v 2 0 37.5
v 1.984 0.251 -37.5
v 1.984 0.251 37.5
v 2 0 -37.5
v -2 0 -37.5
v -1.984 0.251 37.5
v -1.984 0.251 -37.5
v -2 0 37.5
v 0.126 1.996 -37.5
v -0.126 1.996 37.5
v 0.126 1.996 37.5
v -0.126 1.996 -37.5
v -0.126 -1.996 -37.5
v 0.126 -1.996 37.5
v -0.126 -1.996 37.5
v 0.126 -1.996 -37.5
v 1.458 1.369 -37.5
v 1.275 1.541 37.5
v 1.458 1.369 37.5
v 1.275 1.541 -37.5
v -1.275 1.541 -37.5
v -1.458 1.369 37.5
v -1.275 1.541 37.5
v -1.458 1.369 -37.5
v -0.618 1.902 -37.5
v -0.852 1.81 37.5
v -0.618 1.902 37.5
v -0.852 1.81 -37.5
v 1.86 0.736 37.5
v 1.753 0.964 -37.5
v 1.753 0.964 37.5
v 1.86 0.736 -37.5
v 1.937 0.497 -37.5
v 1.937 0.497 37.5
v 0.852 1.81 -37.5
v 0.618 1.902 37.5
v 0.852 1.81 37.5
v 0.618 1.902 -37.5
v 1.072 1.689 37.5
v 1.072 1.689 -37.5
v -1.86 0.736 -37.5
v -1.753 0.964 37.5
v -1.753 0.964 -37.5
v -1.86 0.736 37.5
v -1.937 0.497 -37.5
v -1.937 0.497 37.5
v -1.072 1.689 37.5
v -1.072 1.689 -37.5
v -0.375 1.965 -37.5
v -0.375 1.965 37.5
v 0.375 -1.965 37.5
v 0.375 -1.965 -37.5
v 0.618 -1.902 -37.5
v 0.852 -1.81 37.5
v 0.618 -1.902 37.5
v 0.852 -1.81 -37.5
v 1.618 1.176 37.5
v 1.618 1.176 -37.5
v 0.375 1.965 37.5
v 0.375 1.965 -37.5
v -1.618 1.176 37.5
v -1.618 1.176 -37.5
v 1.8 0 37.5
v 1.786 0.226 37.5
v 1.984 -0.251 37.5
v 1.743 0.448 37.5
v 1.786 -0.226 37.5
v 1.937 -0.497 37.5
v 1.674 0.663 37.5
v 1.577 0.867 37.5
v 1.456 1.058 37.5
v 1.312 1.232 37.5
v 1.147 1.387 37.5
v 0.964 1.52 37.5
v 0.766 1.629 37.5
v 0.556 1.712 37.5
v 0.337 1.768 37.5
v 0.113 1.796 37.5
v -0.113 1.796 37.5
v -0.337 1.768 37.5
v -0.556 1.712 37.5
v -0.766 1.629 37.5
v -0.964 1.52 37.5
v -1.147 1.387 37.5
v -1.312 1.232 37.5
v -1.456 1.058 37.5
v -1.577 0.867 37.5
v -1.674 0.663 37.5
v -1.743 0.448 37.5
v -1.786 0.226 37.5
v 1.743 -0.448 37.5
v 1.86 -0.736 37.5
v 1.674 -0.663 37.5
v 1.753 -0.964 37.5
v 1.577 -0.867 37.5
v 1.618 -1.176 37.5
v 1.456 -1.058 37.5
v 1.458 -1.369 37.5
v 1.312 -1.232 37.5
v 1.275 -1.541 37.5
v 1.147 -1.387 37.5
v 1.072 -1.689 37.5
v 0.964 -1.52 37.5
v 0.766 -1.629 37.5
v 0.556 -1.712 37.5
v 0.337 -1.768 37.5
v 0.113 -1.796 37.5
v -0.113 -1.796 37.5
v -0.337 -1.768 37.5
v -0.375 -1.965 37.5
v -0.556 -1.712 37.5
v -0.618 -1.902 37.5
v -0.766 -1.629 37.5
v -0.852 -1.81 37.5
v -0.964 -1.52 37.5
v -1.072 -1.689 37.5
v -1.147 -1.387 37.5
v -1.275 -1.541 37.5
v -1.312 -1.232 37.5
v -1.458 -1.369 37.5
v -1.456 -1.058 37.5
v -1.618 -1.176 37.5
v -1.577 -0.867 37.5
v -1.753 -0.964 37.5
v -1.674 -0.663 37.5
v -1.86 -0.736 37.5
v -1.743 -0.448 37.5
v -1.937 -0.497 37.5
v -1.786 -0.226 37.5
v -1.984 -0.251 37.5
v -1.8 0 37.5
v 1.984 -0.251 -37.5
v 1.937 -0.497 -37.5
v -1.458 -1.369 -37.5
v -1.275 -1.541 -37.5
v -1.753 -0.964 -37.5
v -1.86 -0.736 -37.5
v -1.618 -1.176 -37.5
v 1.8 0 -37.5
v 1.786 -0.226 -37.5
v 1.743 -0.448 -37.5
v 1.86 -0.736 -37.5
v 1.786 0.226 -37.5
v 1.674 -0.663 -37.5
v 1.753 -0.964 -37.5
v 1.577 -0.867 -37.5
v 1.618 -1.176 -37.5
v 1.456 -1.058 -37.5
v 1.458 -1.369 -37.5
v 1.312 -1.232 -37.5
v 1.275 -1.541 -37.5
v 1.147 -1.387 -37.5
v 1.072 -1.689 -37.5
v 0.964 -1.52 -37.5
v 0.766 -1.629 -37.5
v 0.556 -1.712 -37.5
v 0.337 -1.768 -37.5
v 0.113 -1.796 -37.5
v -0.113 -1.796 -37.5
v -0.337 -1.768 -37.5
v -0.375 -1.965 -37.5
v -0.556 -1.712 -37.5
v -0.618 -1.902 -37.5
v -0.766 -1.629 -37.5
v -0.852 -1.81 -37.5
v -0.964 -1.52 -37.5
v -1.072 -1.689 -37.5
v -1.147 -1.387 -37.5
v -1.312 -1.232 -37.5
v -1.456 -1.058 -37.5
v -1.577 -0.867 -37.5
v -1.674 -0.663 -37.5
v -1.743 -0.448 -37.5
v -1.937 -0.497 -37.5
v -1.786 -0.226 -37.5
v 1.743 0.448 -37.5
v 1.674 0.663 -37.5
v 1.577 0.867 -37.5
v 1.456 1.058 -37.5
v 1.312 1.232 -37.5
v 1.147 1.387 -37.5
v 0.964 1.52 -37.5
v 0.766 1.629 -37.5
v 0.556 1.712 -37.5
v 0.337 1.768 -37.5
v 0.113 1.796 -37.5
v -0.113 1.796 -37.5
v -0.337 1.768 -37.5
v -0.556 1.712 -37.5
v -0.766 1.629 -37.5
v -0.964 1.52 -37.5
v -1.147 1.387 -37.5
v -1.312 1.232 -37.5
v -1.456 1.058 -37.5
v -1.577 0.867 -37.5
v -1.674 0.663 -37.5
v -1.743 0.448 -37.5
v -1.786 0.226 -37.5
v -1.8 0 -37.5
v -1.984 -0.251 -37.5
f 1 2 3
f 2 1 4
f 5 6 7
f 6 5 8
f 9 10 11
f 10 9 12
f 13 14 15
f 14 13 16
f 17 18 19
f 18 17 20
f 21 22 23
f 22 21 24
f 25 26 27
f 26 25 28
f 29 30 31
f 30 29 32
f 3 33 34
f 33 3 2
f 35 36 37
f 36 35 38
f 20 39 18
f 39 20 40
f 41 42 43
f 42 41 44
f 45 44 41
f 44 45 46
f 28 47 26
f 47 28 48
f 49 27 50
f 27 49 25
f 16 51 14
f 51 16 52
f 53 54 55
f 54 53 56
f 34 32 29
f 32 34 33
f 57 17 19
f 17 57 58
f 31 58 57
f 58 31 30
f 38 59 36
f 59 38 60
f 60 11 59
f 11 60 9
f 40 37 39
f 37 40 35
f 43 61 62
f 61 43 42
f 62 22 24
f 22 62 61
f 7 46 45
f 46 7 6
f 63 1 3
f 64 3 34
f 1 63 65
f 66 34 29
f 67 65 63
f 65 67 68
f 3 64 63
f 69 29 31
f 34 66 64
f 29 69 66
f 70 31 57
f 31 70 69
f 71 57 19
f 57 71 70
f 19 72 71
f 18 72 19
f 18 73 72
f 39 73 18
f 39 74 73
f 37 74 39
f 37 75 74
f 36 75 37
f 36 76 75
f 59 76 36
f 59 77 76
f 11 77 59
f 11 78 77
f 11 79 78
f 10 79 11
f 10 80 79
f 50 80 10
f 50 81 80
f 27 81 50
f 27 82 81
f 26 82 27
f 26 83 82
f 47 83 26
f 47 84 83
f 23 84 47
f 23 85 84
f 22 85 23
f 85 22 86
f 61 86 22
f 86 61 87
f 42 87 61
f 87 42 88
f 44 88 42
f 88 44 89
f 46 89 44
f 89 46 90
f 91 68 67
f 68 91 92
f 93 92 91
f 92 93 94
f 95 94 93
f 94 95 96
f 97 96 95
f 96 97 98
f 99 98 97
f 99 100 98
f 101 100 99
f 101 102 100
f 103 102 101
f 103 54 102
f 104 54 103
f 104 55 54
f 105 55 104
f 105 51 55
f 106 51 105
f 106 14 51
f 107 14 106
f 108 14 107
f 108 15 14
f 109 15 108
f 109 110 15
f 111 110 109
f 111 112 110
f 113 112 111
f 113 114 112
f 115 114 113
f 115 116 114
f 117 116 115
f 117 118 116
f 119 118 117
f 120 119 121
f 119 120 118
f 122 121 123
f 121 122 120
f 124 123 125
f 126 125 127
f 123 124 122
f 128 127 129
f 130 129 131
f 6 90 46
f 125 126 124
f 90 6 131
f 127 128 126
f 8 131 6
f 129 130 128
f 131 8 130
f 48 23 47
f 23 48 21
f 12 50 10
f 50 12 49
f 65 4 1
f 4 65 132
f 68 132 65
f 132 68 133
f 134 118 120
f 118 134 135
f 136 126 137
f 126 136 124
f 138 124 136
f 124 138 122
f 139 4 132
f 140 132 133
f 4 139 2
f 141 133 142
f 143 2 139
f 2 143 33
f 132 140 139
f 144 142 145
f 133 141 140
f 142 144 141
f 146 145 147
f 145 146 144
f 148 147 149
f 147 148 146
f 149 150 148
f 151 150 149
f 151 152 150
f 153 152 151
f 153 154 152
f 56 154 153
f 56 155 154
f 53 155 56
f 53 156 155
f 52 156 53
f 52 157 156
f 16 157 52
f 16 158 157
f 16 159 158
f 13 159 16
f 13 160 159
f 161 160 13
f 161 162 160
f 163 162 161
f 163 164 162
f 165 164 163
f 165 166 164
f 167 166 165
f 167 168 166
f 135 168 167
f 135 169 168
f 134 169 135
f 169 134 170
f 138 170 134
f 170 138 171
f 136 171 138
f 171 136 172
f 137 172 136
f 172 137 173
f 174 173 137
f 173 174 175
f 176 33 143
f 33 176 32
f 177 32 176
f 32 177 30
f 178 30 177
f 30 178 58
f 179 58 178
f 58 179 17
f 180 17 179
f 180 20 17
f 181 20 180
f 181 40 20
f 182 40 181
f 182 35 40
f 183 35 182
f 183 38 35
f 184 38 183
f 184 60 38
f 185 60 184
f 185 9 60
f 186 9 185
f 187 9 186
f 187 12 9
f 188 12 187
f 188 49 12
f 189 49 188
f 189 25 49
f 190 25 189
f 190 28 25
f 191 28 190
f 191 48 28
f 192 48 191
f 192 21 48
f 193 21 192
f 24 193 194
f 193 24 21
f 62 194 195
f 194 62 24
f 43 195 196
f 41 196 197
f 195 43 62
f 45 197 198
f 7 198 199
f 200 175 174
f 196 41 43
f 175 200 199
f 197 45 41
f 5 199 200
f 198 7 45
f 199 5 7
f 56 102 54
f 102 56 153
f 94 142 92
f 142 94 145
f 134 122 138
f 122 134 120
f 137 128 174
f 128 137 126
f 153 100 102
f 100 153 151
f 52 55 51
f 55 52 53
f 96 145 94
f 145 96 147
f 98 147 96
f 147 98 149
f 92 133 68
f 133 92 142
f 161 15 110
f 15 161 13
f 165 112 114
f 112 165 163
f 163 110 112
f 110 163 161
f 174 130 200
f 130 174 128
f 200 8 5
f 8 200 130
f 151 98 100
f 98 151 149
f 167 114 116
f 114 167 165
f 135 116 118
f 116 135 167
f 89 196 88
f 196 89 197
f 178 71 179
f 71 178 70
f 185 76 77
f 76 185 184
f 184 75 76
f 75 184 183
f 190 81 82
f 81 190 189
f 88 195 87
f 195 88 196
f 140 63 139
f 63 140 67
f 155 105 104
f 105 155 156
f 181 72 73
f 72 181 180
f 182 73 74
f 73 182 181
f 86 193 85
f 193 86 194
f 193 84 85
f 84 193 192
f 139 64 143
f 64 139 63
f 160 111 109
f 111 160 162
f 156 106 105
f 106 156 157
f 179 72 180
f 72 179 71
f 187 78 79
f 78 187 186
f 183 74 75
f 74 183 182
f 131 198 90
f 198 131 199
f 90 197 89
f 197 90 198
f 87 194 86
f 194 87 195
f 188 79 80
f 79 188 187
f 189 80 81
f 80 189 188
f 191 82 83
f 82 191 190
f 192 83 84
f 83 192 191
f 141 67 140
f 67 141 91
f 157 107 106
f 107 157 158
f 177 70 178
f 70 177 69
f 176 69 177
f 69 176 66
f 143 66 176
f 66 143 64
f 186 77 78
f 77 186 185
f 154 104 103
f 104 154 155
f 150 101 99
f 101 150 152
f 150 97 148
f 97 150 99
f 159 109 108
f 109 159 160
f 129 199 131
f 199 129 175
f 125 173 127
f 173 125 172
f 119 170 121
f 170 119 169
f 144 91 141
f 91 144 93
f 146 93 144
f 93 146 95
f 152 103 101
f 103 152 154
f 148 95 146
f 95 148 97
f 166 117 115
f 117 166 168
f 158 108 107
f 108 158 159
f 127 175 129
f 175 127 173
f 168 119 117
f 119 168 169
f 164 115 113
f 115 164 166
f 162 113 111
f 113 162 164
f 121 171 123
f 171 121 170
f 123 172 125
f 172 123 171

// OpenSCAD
$fn = 50;


difference() {
	union() {
		translate(v = [0, 0, -37.5000000000]) {
			cylinder(h = 75, r = 2.0000000000);
		}
	}
	union() {
		translate(v = [0, 0, -100.0000000000]) {
			cylinder(h = 200, r = 1.8000000000);
		}
	}
}
